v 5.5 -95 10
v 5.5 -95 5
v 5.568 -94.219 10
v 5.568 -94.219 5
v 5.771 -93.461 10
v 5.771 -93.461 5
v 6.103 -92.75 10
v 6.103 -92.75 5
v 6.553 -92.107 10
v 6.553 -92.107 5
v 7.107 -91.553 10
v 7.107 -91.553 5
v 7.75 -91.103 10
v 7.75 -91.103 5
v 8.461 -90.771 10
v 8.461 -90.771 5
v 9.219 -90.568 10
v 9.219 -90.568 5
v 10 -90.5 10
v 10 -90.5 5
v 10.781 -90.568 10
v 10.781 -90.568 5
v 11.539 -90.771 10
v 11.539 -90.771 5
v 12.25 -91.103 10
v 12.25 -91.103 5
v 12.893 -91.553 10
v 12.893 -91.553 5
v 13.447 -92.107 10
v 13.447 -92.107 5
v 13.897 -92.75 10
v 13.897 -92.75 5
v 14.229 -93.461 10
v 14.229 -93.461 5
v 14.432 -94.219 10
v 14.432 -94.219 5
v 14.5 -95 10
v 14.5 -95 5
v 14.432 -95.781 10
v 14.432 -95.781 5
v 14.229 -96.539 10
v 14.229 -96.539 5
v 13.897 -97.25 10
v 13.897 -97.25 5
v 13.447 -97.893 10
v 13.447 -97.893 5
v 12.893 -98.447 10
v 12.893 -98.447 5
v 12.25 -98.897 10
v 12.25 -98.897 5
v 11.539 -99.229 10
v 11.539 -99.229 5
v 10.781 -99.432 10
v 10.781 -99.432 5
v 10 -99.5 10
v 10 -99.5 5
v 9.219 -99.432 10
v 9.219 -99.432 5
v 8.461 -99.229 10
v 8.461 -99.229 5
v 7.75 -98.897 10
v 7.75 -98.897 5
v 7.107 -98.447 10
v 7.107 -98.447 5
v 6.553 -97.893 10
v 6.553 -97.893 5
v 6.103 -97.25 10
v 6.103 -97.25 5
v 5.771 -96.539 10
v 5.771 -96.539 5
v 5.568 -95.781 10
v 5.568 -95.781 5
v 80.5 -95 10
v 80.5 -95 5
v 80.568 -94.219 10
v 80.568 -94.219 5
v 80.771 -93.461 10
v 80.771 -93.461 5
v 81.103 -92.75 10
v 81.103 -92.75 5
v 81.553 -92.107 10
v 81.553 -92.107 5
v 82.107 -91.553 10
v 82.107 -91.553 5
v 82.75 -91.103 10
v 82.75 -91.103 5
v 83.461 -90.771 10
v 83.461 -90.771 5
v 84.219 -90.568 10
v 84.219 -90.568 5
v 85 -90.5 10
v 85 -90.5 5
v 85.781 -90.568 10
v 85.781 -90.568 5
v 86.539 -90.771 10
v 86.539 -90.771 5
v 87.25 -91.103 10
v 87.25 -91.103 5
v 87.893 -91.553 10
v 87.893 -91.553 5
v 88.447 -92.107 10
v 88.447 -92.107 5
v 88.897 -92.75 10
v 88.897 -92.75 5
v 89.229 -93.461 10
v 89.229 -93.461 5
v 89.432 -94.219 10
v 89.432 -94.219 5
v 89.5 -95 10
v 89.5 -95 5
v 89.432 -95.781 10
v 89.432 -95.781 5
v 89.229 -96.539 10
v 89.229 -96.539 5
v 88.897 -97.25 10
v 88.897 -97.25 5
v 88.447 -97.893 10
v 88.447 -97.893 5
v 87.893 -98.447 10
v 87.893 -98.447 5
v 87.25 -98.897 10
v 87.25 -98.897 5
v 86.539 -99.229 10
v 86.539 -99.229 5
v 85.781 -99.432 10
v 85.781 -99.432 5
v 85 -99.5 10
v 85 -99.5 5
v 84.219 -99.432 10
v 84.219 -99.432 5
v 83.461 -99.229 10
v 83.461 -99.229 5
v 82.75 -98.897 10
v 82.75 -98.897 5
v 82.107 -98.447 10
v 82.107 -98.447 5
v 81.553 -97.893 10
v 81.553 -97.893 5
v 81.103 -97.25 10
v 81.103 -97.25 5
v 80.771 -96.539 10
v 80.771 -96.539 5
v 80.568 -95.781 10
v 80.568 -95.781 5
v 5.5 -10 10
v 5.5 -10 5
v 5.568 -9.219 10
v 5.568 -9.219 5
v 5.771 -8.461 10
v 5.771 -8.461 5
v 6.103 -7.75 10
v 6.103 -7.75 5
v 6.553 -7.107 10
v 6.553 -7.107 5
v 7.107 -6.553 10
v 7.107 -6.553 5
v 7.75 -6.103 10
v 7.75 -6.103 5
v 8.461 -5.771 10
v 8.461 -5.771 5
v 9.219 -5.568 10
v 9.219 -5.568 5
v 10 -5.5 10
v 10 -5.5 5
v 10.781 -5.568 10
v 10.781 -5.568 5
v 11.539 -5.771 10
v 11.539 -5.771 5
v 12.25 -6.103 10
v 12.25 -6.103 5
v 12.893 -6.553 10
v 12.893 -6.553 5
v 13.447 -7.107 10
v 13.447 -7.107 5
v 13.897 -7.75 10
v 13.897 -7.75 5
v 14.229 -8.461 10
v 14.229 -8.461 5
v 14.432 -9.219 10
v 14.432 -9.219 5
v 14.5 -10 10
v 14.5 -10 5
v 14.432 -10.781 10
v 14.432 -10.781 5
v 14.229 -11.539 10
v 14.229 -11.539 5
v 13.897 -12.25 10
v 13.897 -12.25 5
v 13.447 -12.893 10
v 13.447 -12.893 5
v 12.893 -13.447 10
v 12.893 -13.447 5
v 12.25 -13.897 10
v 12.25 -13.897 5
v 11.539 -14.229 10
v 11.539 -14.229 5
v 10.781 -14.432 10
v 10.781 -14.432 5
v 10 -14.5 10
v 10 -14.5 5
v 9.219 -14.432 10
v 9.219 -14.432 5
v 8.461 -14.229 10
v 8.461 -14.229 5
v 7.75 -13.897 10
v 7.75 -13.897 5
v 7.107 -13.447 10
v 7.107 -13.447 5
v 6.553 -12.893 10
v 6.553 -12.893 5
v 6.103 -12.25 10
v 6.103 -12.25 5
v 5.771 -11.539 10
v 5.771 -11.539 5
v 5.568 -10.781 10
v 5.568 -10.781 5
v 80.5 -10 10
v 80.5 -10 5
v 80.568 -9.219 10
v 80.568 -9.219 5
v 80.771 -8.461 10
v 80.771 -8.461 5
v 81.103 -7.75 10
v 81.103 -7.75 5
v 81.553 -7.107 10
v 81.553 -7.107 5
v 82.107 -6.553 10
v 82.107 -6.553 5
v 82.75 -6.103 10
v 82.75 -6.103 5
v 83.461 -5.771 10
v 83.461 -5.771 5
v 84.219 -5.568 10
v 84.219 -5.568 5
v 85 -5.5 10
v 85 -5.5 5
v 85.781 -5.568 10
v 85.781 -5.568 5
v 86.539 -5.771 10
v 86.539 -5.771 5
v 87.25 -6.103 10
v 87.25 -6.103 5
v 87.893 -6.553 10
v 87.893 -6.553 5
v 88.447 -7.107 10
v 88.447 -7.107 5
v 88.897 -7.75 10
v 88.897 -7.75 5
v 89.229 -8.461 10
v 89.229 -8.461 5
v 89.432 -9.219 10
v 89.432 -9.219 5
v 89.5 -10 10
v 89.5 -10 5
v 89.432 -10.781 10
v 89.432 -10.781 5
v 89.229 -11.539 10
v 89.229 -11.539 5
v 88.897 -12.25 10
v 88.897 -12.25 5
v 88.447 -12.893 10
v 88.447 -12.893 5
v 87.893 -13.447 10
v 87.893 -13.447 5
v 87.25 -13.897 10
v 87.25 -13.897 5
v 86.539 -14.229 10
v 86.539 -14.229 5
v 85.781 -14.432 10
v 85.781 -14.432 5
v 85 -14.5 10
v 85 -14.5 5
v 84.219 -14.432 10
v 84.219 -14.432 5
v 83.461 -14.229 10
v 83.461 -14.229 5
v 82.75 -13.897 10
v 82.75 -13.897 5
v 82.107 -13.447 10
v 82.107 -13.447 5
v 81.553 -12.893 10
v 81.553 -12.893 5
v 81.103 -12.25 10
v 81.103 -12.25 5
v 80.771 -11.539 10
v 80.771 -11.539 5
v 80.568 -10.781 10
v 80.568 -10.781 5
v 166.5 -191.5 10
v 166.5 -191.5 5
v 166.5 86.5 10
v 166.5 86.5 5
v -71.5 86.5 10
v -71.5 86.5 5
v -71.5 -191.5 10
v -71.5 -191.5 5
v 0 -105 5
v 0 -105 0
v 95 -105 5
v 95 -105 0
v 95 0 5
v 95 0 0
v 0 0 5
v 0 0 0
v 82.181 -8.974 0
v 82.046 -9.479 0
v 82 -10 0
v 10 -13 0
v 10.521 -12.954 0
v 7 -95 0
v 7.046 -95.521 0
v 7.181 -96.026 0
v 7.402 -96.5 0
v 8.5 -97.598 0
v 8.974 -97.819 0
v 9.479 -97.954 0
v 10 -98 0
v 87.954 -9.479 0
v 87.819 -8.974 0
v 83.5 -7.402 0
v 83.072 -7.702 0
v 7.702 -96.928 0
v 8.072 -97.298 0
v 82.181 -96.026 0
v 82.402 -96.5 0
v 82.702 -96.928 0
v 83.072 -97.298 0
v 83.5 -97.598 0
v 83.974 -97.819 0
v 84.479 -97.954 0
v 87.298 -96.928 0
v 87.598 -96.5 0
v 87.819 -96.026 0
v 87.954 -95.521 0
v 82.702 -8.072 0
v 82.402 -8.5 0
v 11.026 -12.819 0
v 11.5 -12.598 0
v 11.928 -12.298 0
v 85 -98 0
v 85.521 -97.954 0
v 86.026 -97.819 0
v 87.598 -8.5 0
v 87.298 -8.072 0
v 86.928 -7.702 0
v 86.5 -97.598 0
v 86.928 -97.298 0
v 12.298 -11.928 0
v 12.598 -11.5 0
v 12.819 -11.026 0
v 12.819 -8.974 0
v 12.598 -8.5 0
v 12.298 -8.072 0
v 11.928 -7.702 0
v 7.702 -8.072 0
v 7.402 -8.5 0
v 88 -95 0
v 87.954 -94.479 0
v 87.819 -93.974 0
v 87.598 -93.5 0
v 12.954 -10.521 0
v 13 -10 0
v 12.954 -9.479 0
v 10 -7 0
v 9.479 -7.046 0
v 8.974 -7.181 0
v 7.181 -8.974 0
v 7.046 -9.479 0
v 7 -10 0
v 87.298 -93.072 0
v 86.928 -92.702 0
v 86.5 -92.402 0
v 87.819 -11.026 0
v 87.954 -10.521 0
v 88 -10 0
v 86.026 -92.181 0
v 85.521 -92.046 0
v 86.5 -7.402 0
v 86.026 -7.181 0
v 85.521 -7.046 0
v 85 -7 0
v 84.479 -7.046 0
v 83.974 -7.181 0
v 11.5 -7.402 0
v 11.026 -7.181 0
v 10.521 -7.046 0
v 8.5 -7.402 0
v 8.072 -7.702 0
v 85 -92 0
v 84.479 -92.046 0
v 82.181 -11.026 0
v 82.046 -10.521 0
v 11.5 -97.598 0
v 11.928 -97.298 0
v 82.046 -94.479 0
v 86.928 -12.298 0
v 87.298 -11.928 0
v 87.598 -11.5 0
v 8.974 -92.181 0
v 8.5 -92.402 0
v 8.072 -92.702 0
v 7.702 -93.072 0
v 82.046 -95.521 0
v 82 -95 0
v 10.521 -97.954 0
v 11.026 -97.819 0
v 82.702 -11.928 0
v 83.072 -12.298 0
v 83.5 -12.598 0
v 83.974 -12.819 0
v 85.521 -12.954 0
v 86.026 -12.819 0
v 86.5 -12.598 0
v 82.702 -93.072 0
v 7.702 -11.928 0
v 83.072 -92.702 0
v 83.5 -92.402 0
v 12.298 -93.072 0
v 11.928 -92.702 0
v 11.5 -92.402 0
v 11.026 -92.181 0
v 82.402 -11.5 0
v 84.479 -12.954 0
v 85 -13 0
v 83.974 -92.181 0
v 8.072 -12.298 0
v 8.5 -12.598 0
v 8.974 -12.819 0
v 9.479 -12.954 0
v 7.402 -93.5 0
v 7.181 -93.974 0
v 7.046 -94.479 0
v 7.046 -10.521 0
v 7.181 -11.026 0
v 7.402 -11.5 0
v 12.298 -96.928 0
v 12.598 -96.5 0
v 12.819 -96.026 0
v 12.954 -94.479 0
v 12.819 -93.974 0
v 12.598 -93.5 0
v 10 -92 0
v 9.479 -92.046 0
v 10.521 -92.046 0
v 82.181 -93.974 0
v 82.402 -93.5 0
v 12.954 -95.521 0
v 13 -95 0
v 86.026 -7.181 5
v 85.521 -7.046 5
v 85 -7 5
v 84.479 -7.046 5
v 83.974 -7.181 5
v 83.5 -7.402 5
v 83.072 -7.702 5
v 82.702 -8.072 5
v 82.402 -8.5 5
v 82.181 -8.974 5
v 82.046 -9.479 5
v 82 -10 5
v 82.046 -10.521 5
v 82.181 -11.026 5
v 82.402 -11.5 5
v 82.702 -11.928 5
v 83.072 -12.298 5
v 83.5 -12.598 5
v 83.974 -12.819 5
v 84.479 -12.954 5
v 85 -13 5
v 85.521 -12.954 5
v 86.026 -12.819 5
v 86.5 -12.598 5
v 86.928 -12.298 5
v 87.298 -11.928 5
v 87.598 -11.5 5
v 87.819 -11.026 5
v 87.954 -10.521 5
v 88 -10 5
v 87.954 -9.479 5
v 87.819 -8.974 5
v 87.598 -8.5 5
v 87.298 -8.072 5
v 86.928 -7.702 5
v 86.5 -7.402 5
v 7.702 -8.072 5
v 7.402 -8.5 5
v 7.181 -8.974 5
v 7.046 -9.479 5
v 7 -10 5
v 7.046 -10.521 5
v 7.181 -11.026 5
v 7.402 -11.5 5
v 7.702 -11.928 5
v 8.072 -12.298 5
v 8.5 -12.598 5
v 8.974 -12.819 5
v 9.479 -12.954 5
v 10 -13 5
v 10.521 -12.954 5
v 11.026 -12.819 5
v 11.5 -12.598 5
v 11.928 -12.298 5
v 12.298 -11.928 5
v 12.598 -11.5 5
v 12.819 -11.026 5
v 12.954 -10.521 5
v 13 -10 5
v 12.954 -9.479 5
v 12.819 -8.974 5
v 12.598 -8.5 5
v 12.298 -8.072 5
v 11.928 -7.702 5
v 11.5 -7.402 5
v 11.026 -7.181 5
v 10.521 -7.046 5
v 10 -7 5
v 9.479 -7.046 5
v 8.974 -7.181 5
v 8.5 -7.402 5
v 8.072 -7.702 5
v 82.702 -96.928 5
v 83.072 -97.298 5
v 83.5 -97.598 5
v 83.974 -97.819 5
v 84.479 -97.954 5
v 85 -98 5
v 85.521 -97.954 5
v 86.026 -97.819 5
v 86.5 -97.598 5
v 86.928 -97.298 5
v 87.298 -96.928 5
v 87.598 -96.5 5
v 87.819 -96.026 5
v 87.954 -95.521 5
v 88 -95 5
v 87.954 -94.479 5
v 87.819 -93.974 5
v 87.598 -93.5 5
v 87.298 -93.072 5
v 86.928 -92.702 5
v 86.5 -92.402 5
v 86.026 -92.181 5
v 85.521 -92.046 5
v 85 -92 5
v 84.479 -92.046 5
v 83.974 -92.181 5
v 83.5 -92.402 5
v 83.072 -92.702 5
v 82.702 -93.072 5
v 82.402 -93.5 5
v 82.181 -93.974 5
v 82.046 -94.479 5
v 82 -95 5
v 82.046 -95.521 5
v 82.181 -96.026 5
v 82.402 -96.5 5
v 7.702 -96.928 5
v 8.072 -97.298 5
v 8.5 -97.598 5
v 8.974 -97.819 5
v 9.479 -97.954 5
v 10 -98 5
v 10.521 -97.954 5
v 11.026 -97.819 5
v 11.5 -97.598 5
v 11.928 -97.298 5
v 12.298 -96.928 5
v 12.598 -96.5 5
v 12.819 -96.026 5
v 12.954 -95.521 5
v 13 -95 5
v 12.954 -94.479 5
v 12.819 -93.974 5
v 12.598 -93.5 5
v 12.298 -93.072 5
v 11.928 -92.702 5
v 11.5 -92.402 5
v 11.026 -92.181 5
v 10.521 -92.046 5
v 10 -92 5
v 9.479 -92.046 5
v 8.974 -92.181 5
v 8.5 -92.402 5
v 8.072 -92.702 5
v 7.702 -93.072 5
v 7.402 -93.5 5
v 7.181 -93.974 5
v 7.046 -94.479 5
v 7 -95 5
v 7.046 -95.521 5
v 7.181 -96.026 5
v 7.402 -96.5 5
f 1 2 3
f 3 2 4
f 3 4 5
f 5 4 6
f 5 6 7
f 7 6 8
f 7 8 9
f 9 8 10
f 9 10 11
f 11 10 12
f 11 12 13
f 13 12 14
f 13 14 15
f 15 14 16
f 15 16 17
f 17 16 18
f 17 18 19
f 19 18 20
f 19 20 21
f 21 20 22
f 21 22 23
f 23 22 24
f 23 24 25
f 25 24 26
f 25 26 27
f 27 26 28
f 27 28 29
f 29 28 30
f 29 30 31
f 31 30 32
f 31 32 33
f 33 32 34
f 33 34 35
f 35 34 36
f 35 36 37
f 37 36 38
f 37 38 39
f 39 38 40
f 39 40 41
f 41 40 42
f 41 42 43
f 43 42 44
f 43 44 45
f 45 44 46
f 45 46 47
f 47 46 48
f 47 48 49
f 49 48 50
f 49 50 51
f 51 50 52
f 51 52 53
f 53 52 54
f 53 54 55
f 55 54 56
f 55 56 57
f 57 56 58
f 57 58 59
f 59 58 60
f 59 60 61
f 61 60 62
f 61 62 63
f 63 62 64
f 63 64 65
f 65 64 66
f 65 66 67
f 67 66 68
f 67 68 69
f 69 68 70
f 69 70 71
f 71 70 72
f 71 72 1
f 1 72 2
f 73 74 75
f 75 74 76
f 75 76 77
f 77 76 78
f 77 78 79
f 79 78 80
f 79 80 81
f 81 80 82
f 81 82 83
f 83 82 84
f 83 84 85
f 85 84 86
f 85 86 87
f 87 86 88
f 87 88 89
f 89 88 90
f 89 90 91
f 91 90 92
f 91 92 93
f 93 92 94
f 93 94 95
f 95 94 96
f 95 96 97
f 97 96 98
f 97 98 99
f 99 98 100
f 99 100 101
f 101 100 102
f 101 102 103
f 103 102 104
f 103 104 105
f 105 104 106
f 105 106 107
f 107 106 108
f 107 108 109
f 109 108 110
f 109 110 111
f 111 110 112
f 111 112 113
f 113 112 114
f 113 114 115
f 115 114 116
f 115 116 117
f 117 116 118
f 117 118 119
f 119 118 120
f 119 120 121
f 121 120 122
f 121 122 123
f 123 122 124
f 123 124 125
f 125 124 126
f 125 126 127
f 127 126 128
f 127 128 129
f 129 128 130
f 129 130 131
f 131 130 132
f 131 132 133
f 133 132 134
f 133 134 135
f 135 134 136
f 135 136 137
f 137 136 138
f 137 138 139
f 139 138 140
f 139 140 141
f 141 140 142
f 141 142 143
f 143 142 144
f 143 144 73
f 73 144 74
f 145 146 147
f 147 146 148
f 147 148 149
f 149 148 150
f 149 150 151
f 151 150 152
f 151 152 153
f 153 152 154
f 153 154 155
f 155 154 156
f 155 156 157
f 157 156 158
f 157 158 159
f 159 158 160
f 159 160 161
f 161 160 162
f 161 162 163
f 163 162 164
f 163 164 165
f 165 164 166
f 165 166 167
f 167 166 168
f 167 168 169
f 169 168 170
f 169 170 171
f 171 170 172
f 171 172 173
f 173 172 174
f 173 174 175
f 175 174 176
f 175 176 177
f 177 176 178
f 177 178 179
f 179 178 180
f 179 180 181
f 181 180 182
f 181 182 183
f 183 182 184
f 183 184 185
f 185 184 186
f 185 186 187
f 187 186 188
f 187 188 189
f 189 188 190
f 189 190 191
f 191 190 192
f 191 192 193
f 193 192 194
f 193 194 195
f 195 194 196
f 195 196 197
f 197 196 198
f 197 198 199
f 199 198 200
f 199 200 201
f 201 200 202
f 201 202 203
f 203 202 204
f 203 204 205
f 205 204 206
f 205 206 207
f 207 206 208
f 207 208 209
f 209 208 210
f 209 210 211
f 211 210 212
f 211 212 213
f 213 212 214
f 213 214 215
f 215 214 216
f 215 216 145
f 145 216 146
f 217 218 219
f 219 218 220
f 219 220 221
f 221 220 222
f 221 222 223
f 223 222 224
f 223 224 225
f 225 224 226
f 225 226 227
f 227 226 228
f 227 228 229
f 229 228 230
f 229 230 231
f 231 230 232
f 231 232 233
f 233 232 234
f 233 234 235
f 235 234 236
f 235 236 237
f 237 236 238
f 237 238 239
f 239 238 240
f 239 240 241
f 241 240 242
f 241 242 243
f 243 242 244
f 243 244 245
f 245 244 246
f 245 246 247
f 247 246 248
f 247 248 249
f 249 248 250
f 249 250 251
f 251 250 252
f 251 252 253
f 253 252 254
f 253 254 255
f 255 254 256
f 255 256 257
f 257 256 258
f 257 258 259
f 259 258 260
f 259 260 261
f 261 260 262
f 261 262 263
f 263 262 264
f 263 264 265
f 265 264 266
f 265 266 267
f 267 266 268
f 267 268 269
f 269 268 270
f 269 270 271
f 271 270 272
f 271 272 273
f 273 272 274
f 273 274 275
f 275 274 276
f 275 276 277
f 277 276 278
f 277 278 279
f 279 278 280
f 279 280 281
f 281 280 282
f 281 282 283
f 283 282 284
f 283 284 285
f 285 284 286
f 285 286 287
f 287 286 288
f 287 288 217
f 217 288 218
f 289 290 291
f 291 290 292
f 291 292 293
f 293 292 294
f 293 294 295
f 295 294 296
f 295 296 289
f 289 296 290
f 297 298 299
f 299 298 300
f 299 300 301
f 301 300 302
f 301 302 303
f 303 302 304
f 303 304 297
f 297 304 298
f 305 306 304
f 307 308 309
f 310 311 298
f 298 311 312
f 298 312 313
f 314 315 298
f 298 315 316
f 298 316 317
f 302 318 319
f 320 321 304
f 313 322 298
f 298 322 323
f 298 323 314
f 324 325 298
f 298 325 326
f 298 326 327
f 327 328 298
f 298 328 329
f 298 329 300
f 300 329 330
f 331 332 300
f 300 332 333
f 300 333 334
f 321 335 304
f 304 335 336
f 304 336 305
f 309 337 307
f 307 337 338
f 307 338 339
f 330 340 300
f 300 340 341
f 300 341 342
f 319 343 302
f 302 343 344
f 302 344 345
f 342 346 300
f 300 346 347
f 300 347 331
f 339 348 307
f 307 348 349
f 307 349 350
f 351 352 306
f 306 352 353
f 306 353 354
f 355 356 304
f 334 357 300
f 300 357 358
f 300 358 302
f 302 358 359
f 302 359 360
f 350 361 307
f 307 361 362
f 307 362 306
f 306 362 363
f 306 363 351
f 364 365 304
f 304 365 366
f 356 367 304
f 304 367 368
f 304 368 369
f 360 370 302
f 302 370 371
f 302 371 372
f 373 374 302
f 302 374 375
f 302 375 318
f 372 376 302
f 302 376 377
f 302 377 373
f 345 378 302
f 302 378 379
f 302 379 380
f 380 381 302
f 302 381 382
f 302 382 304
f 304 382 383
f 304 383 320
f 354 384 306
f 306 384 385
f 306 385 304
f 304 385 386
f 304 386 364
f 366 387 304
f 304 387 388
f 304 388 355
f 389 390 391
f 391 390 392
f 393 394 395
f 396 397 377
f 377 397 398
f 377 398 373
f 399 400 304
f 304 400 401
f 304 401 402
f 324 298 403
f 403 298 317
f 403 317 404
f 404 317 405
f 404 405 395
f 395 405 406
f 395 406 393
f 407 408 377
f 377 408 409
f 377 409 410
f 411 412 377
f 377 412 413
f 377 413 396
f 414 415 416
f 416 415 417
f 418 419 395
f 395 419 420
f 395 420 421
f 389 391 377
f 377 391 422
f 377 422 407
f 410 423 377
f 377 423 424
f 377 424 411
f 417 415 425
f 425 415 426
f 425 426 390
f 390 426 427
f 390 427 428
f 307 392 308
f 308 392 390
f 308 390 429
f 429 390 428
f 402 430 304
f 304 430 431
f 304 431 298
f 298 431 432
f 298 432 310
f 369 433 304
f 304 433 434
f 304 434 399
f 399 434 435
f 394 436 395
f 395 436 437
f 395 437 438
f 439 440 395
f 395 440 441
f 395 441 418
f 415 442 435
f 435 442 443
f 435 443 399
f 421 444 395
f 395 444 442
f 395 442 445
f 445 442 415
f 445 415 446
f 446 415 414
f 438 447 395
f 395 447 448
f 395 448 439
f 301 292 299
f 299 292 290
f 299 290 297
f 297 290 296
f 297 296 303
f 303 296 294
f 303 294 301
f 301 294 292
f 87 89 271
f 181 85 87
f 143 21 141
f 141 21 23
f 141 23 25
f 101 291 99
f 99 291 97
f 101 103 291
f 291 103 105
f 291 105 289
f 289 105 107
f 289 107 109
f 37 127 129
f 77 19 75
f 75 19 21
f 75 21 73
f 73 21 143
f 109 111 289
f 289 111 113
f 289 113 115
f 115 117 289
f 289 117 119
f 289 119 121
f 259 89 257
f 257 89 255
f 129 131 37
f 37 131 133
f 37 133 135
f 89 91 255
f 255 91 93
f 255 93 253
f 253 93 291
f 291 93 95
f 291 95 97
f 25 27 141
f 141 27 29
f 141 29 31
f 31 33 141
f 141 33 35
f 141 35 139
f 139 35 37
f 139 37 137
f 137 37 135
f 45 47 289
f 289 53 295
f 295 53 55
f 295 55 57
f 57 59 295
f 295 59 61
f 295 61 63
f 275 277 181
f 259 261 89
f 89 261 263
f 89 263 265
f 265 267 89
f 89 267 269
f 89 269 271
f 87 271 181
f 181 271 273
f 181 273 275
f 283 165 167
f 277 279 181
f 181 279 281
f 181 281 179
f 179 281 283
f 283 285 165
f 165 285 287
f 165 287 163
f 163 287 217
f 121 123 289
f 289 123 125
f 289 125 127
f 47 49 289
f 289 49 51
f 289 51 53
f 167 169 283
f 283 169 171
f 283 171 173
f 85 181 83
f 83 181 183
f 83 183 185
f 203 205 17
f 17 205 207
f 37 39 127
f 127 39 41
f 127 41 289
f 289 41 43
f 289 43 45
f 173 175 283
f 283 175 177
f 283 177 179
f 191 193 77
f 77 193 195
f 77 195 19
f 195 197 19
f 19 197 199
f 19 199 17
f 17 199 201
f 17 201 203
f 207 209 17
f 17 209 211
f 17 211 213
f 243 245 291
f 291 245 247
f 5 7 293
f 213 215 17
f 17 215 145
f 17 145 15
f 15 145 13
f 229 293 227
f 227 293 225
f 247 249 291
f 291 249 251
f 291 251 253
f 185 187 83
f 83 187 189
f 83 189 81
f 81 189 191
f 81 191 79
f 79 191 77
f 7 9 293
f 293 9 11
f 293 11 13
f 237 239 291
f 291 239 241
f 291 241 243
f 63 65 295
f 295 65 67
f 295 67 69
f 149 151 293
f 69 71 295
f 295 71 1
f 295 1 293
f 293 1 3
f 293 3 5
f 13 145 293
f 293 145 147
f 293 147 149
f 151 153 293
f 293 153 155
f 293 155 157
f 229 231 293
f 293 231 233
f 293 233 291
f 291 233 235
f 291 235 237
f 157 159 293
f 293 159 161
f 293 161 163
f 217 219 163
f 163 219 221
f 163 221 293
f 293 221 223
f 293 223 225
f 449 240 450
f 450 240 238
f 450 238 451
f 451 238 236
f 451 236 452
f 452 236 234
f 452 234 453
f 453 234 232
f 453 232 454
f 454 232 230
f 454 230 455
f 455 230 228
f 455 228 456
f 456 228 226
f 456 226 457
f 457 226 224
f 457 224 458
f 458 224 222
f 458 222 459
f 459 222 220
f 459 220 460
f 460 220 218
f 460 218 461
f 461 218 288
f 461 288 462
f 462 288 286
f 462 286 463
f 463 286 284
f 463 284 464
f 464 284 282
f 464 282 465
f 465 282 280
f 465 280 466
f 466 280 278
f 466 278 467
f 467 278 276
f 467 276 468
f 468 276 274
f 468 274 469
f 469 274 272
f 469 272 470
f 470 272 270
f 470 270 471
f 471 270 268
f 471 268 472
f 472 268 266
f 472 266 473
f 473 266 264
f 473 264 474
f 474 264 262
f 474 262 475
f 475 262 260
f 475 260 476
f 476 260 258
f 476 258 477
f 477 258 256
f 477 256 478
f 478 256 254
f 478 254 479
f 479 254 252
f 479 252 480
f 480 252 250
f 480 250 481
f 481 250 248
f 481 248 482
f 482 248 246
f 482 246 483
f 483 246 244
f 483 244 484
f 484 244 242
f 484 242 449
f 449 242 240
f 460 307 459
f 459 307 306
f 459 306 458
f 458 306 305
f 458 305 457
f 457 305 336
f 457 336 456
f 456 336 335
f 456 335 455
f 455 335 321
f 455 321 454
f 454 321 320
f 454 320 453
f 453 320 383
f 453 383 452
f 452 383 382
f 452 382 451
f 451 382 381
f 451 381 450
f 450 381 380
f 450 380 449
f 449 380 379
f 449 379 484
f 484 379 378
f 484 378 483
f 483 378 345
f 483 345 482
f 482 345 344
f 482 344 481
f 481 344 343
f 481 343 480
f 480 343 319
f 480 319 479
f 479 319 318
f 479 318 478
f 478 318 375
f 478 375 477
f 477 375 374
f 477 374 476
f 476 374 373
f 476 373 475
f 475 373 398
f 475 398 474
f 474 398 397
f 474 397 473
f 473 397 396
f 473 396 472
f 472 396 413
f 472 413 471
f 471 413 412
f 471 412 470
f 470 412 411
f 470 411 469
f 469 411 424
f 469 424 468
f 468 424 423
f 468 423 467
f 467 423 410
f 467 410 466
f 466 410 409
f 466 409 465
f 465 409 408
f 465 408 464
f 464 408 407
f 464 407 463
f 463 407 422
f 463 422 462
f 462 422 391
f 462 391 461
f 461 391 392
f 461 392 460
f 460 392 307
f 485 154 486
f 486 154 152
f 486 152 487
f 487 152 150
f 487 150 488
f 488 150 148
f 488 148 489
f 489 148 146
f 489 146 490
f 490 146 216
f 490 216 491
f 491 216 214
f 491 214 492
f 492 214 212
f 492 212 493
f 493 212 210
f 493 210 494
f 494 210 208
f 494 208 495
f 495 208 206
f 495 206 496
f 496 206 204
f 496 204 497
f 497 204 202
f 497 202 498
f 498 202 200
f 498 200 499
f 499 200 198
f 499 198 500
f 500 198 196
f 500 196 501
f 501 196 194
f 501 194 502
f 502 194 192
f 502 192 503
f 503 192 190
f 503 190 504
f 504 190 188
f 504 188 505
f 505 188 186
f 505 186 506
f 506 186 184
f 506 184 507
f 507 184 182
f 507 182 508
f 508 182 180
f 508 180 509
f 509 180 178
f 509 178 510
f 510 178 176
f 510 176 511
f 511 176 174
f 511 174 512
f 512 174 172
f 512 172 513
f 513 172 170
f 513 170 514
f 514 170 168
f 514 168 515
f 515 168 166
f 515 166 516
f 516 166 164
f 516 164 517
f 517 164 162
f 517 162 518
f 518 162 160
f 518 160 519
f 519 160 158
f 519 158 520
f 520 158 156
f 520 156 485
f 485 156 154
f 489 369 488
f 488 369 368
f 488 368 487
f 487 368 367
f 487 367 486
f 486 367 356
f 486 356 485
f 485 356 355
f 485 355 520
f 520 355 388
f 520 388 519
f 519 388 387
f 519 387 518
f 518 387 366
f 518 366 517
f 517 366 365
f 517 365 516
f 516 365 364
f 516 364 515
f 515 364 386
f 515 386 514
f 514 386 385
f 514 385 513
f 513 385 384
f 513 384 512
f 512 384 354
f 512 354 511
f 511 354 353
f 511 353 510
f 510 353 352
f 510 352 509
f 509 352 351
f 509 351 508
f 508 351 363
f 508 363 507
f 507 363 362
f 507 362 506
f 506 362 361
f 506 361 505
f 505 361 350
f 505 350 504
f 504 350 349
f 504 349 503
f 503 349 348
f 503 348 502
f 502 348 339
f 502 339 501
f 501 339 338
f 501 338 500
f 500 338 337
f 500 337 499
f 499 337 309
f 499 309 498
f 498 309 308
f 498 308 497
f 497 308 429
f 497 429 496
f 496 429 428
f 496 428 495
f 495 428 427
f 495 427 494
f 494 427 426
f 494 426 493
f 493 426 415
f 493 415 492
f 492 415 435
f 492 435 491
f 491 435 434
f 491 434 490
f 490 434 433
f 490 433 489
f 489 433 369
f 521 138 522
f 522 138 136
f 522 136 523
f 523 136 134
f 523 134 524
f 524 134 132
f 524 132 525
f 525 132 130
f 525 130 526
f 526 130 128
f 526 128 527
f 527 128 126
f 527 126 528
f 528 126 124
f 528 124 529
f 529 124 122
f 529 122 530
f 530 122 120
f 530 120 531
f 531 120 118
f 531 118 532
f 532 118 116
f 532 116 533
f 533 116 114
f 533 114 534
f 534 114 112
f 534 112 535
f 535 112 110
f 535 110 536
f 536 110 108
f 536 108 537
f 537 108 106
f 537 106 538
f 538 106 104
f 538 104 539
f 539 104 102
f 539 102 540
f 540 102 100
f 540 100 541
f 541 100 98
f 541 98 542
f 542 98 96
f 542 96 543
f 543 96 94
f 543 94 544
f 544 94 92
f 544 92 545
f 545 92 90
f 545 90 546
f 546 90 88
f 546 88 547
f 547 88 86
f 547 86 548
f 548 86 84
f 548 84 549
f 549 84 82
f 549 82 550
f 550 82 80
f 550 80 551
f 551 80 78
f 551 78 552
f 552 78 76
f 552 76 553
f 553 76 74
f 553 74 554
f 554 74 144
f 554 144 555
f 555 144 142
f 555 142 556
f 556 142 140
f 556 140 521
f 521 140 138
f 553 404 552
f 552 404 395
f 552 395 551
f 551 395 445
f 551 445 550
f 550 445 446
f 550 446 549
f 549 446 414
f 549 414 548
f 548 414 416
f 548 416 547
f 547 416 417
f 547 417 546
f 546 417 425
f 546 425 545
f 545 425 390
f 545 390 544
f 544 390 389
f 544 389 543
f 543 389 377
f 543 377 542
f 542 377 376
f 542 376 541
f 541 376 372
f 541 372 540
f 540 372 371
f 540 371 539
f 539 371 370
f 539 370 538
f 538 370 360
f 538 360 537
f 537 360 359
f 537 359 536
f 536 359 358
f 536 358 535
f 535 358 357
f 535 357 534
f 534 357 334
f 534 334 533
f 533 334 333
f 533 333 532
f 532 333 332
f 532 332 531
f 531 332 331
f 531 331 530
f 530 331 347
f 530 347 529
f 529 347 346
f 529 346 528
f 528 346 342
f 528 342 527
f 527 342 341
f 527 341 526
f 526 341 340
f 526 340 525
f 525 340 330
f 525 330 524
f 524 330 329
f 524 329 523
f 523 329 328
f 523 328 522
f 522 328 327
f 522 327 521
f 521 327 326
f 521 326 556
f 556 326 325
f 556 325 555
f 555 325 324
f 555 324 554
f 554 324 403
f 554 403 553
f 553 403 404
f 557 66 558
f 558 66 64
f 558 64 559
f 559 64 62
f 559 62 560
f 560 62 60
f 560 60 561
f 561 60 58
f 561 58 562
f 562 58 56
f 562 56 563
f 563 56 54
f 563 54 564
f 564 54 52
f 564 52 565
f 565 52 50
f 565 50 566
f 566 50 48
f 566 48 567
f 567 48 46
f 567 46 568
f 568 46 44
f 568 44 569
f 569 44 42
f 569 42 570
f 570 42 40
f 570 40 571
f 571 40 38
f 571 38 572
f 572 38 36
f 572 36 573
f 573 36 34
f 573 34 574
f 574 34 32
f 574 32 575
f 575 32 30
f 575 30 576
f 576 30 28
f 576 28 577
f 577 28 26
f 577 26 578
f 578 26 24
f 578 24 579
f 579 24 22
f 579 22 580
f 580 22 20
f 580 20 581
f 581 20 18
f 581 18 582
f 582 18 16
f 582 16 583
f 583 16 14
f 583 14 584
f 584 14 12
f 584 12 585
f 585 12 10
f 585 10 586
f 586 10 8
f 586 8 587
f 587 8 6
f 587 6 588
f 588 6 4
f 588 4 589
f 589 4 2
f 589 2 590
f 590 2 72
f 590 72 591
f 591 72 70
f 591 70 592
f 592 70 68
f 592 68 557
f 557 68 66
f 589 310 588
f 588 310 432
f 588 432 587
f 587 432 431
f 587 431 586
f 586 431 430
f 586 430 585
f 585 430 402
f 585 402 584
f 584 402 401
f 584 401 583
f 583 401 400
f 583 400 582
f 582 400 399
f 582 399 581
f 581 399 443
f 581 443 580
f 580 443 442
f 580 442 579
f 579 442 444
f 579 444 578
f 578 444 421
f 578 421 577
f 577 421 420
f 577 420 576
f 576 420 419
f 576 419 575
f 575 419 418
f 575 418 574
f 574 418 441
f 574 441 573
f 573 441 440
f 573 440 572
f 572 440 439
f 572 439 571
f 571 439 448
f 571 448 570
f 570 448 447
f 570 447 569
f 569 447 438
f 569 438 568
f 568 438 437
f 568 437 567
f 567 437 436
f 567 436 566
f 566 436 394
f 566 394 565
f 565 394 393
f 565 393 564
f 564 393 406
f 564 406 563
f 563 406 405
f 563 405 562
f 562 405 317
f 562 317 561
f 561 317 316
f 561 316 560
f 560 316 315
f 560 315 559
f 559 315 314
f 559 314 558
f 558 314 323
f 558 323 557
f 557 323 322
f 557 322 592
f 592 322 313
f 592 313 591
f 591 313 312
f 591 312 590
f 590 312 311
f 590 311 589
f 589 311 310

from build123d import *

# Parameters (mm, degrees)
SKETCH_1_W          = 95
SKETCH_1_H          = 105
EXTRUDE_3_DEPTH     = 10
SKETCH_10_R         = 4.5
CUT_EXTRUDE_4_DEPTH = 5
EXTRUDE_4_DEPTH     = 5
SKETCH_13_W         = 238
SKETCH_13_H         = 278
SKETCH_13_W_2       = 228
SKETCH_13_H_2       = 268
EXTRUDE_5_DEPTH     = 30
SKETCH_14_W         = 238
SKETCH_14_H         = 278
SKETCH_14_W_2       = 228
SKETCH_14_H_2       = 268
EXTRUDE_6_DEPTH     = 5
SKETCH_17_W         = 464.866912847
SKETCH_17_H         = 477.250662574
CUT_EXTRUDE_5_DEPTH = 30
SKETCH_10_2_R       = 4.5
CUT_EXTRUDE_6_DEPTH = 10
SKETCH_19_R         = 4.5
SKETCH_19_R_2       = 3
EXTRUDE_7_DEPTH     = 5


with BuildPart() as part:
    # 草图1 → 凸台-拉伸3 (new body)
    with BuildSketch(Plane.XY):
        with Locations((47.5, -52.5)):
            Rectangle(SKETCH_1_W, SKETCH_1_H)
    extrude(amount=EXTRUDE_3_DEPTH)

    # 草图10 → 切除-拉伸4 (cut)
    with BuildSketch(Plane(origin=(0, 0, 0), x_dir=(-1, 0, 0), z_dir=(0, 0, -1))):
        with Locations((-85, -10)):
            Circle(SKETCH_10_R)
        with Locations((-85, -95)):
            Circle(SKETCH_10_R)
        with Locations((-10, -95)):
            Circle(SKETCH_10_R)
        with Locations((-10, -10)):
            Circle(SKETCH_10_R)
    extrude(amount=-CUT_EXTRUDE_4_DEPTH, mode=Mode.SUBTRACT)

    # 草图12 → 凸台-拉伸4 (add)
    with BuildSketch(Plane.XY.offset(10)):
        Polygon((47.5, 81.5), (161.5, 81.5), (161.5, -186.5), (-66.5, -186.5), (-66.5, 81.5), align=None)
    extrude(amount=-EXTRUDE_4_DEPTH)



with BuildPart() as body_2:
    # 草图13 → 凸台-拉伸5 (new body)
    with BuildSketch(Plane.XY.offset(10)):
        with Locations((47.5, -52.5)):
            Rectangle(SKETCH_13_W, SKETCH_13_H)
        with Locations((47.5, -52.5)):
            Rectangle(SKETCH_13_W_2, SKETCH_13_H_2, mode=Mode.SUBTRACT)
    extrude(amount=EXTRUDE_5_DEPTH)


with BuildPart() as part_1:
    add(part.part)

    add(body_2.part)  # 凸台-拉伸6 merges body 2
    # 草图14 → 凸台-拉伸6 (add)
    with BuildSketch(Plane(origin=(0, 0, 5), x_dir=(-1, 0, 0), z_dir=(0, 0, -1))):
        with Locations((-47.5, -52.5)):
            Rectangle(SKETCH_14_W, SKETCH_14_H)
        with Locations((-47.5, -52.5)):
            Rectangle(SKETCH_14_W_2, SKETCH_14_H_2, mode=Mode.SUBTRACT)
    extrude(amount=-EXTRUDE_6_DEPTH)

    # 草图17 → 切除-拉伸5 (cut)
    with BuildSketch(Plane.XY.offset(40)):
        with Locations((32.258461874, -38.211058007)):
            Rectangle(SKETCH_17_W, SKETCH_17_H)
    extrude(amount=-CUT_EXTRUDE_5_DEPTH, mode=Mode.SUBTRACT)

    # 草图10<2> → 切除-拉伸6 (cut)
    with BuildSketch(Plane(origin=(0, 0, 0), x_dir=(-1, 0, 0), z_dir=(0, 0, -1))):
        with Locations((-85, -10)):
            Circle(SKETCH_10_2_R)
        with Locations((-85, -95)):
            Circle(SKETCH_10_2_R)
        with Locations((-10, -95)):
            Circle(SKETCH_10_2_R)
        with Locations((-10, -10)):
            Circle(SKETCH_10_2_R)
    extrude(amount=-CUT_EXTRUDE_6_DEPTH, mode=Mode.SUBTRACT)

    # 草图19 → 凸台-拉伸7 (add)
    # profile 1 of 4: a face of its own
    with BuildSketch(Plane(origin=(0, 0, 0), x_dir=(-1, 0, 0), z_dir=(0, 0, -1))):
        with Locations((-85, -10)):
            Circle(SKETCH_19_R)
        with Locations((-85, -10)):
            Circle(SKETCH_19_R_2, mode=Mode.SUBTRACT)
    # profile 2 of 4: a face of its own
    with BuildSketch(Plane(origin=(0, 0, 0), x_dir=(-1, 0, 0), z_dir=(0, 0, -1))):
        with Locations((-10, -10)):
            Circle(SKETCH_19_R)
        with Locations((-10, -10)):
            Circle(SKETCH_19_R_2, mode=Mode.SUBTRACT)
    # profile 3 of 4: a face of its own
    with BuildSketch(Plane(origin=(0, 0, 0), x_dir=(-1, 0, 0), z_dir=(0, 0, -1))):
        with Locations((-85, -95)):
            Circle(SKETCH_19_R)
        with Locations((-85, -95)):
            Circle(SKETCH_19_R_2, mode=Mode.SUBTRACT)
    # profile 4 of 4: a face of its own
    with BuildSketch(Plane(origin=(0, 0, 0), x_dir=(-1, 0, 0), z_dir=(0, 0, -1))):
        with Locations((-10, -95)):
            Circle(SKETCH_19_R)
        with Locations((-10, -95)):
            Circle(SKETCH_19_R_2, mode=Mode.SUBTRACT)
    extrude(amount=-EXTRUDE_7_DEPTH)


solid = part_1.part
